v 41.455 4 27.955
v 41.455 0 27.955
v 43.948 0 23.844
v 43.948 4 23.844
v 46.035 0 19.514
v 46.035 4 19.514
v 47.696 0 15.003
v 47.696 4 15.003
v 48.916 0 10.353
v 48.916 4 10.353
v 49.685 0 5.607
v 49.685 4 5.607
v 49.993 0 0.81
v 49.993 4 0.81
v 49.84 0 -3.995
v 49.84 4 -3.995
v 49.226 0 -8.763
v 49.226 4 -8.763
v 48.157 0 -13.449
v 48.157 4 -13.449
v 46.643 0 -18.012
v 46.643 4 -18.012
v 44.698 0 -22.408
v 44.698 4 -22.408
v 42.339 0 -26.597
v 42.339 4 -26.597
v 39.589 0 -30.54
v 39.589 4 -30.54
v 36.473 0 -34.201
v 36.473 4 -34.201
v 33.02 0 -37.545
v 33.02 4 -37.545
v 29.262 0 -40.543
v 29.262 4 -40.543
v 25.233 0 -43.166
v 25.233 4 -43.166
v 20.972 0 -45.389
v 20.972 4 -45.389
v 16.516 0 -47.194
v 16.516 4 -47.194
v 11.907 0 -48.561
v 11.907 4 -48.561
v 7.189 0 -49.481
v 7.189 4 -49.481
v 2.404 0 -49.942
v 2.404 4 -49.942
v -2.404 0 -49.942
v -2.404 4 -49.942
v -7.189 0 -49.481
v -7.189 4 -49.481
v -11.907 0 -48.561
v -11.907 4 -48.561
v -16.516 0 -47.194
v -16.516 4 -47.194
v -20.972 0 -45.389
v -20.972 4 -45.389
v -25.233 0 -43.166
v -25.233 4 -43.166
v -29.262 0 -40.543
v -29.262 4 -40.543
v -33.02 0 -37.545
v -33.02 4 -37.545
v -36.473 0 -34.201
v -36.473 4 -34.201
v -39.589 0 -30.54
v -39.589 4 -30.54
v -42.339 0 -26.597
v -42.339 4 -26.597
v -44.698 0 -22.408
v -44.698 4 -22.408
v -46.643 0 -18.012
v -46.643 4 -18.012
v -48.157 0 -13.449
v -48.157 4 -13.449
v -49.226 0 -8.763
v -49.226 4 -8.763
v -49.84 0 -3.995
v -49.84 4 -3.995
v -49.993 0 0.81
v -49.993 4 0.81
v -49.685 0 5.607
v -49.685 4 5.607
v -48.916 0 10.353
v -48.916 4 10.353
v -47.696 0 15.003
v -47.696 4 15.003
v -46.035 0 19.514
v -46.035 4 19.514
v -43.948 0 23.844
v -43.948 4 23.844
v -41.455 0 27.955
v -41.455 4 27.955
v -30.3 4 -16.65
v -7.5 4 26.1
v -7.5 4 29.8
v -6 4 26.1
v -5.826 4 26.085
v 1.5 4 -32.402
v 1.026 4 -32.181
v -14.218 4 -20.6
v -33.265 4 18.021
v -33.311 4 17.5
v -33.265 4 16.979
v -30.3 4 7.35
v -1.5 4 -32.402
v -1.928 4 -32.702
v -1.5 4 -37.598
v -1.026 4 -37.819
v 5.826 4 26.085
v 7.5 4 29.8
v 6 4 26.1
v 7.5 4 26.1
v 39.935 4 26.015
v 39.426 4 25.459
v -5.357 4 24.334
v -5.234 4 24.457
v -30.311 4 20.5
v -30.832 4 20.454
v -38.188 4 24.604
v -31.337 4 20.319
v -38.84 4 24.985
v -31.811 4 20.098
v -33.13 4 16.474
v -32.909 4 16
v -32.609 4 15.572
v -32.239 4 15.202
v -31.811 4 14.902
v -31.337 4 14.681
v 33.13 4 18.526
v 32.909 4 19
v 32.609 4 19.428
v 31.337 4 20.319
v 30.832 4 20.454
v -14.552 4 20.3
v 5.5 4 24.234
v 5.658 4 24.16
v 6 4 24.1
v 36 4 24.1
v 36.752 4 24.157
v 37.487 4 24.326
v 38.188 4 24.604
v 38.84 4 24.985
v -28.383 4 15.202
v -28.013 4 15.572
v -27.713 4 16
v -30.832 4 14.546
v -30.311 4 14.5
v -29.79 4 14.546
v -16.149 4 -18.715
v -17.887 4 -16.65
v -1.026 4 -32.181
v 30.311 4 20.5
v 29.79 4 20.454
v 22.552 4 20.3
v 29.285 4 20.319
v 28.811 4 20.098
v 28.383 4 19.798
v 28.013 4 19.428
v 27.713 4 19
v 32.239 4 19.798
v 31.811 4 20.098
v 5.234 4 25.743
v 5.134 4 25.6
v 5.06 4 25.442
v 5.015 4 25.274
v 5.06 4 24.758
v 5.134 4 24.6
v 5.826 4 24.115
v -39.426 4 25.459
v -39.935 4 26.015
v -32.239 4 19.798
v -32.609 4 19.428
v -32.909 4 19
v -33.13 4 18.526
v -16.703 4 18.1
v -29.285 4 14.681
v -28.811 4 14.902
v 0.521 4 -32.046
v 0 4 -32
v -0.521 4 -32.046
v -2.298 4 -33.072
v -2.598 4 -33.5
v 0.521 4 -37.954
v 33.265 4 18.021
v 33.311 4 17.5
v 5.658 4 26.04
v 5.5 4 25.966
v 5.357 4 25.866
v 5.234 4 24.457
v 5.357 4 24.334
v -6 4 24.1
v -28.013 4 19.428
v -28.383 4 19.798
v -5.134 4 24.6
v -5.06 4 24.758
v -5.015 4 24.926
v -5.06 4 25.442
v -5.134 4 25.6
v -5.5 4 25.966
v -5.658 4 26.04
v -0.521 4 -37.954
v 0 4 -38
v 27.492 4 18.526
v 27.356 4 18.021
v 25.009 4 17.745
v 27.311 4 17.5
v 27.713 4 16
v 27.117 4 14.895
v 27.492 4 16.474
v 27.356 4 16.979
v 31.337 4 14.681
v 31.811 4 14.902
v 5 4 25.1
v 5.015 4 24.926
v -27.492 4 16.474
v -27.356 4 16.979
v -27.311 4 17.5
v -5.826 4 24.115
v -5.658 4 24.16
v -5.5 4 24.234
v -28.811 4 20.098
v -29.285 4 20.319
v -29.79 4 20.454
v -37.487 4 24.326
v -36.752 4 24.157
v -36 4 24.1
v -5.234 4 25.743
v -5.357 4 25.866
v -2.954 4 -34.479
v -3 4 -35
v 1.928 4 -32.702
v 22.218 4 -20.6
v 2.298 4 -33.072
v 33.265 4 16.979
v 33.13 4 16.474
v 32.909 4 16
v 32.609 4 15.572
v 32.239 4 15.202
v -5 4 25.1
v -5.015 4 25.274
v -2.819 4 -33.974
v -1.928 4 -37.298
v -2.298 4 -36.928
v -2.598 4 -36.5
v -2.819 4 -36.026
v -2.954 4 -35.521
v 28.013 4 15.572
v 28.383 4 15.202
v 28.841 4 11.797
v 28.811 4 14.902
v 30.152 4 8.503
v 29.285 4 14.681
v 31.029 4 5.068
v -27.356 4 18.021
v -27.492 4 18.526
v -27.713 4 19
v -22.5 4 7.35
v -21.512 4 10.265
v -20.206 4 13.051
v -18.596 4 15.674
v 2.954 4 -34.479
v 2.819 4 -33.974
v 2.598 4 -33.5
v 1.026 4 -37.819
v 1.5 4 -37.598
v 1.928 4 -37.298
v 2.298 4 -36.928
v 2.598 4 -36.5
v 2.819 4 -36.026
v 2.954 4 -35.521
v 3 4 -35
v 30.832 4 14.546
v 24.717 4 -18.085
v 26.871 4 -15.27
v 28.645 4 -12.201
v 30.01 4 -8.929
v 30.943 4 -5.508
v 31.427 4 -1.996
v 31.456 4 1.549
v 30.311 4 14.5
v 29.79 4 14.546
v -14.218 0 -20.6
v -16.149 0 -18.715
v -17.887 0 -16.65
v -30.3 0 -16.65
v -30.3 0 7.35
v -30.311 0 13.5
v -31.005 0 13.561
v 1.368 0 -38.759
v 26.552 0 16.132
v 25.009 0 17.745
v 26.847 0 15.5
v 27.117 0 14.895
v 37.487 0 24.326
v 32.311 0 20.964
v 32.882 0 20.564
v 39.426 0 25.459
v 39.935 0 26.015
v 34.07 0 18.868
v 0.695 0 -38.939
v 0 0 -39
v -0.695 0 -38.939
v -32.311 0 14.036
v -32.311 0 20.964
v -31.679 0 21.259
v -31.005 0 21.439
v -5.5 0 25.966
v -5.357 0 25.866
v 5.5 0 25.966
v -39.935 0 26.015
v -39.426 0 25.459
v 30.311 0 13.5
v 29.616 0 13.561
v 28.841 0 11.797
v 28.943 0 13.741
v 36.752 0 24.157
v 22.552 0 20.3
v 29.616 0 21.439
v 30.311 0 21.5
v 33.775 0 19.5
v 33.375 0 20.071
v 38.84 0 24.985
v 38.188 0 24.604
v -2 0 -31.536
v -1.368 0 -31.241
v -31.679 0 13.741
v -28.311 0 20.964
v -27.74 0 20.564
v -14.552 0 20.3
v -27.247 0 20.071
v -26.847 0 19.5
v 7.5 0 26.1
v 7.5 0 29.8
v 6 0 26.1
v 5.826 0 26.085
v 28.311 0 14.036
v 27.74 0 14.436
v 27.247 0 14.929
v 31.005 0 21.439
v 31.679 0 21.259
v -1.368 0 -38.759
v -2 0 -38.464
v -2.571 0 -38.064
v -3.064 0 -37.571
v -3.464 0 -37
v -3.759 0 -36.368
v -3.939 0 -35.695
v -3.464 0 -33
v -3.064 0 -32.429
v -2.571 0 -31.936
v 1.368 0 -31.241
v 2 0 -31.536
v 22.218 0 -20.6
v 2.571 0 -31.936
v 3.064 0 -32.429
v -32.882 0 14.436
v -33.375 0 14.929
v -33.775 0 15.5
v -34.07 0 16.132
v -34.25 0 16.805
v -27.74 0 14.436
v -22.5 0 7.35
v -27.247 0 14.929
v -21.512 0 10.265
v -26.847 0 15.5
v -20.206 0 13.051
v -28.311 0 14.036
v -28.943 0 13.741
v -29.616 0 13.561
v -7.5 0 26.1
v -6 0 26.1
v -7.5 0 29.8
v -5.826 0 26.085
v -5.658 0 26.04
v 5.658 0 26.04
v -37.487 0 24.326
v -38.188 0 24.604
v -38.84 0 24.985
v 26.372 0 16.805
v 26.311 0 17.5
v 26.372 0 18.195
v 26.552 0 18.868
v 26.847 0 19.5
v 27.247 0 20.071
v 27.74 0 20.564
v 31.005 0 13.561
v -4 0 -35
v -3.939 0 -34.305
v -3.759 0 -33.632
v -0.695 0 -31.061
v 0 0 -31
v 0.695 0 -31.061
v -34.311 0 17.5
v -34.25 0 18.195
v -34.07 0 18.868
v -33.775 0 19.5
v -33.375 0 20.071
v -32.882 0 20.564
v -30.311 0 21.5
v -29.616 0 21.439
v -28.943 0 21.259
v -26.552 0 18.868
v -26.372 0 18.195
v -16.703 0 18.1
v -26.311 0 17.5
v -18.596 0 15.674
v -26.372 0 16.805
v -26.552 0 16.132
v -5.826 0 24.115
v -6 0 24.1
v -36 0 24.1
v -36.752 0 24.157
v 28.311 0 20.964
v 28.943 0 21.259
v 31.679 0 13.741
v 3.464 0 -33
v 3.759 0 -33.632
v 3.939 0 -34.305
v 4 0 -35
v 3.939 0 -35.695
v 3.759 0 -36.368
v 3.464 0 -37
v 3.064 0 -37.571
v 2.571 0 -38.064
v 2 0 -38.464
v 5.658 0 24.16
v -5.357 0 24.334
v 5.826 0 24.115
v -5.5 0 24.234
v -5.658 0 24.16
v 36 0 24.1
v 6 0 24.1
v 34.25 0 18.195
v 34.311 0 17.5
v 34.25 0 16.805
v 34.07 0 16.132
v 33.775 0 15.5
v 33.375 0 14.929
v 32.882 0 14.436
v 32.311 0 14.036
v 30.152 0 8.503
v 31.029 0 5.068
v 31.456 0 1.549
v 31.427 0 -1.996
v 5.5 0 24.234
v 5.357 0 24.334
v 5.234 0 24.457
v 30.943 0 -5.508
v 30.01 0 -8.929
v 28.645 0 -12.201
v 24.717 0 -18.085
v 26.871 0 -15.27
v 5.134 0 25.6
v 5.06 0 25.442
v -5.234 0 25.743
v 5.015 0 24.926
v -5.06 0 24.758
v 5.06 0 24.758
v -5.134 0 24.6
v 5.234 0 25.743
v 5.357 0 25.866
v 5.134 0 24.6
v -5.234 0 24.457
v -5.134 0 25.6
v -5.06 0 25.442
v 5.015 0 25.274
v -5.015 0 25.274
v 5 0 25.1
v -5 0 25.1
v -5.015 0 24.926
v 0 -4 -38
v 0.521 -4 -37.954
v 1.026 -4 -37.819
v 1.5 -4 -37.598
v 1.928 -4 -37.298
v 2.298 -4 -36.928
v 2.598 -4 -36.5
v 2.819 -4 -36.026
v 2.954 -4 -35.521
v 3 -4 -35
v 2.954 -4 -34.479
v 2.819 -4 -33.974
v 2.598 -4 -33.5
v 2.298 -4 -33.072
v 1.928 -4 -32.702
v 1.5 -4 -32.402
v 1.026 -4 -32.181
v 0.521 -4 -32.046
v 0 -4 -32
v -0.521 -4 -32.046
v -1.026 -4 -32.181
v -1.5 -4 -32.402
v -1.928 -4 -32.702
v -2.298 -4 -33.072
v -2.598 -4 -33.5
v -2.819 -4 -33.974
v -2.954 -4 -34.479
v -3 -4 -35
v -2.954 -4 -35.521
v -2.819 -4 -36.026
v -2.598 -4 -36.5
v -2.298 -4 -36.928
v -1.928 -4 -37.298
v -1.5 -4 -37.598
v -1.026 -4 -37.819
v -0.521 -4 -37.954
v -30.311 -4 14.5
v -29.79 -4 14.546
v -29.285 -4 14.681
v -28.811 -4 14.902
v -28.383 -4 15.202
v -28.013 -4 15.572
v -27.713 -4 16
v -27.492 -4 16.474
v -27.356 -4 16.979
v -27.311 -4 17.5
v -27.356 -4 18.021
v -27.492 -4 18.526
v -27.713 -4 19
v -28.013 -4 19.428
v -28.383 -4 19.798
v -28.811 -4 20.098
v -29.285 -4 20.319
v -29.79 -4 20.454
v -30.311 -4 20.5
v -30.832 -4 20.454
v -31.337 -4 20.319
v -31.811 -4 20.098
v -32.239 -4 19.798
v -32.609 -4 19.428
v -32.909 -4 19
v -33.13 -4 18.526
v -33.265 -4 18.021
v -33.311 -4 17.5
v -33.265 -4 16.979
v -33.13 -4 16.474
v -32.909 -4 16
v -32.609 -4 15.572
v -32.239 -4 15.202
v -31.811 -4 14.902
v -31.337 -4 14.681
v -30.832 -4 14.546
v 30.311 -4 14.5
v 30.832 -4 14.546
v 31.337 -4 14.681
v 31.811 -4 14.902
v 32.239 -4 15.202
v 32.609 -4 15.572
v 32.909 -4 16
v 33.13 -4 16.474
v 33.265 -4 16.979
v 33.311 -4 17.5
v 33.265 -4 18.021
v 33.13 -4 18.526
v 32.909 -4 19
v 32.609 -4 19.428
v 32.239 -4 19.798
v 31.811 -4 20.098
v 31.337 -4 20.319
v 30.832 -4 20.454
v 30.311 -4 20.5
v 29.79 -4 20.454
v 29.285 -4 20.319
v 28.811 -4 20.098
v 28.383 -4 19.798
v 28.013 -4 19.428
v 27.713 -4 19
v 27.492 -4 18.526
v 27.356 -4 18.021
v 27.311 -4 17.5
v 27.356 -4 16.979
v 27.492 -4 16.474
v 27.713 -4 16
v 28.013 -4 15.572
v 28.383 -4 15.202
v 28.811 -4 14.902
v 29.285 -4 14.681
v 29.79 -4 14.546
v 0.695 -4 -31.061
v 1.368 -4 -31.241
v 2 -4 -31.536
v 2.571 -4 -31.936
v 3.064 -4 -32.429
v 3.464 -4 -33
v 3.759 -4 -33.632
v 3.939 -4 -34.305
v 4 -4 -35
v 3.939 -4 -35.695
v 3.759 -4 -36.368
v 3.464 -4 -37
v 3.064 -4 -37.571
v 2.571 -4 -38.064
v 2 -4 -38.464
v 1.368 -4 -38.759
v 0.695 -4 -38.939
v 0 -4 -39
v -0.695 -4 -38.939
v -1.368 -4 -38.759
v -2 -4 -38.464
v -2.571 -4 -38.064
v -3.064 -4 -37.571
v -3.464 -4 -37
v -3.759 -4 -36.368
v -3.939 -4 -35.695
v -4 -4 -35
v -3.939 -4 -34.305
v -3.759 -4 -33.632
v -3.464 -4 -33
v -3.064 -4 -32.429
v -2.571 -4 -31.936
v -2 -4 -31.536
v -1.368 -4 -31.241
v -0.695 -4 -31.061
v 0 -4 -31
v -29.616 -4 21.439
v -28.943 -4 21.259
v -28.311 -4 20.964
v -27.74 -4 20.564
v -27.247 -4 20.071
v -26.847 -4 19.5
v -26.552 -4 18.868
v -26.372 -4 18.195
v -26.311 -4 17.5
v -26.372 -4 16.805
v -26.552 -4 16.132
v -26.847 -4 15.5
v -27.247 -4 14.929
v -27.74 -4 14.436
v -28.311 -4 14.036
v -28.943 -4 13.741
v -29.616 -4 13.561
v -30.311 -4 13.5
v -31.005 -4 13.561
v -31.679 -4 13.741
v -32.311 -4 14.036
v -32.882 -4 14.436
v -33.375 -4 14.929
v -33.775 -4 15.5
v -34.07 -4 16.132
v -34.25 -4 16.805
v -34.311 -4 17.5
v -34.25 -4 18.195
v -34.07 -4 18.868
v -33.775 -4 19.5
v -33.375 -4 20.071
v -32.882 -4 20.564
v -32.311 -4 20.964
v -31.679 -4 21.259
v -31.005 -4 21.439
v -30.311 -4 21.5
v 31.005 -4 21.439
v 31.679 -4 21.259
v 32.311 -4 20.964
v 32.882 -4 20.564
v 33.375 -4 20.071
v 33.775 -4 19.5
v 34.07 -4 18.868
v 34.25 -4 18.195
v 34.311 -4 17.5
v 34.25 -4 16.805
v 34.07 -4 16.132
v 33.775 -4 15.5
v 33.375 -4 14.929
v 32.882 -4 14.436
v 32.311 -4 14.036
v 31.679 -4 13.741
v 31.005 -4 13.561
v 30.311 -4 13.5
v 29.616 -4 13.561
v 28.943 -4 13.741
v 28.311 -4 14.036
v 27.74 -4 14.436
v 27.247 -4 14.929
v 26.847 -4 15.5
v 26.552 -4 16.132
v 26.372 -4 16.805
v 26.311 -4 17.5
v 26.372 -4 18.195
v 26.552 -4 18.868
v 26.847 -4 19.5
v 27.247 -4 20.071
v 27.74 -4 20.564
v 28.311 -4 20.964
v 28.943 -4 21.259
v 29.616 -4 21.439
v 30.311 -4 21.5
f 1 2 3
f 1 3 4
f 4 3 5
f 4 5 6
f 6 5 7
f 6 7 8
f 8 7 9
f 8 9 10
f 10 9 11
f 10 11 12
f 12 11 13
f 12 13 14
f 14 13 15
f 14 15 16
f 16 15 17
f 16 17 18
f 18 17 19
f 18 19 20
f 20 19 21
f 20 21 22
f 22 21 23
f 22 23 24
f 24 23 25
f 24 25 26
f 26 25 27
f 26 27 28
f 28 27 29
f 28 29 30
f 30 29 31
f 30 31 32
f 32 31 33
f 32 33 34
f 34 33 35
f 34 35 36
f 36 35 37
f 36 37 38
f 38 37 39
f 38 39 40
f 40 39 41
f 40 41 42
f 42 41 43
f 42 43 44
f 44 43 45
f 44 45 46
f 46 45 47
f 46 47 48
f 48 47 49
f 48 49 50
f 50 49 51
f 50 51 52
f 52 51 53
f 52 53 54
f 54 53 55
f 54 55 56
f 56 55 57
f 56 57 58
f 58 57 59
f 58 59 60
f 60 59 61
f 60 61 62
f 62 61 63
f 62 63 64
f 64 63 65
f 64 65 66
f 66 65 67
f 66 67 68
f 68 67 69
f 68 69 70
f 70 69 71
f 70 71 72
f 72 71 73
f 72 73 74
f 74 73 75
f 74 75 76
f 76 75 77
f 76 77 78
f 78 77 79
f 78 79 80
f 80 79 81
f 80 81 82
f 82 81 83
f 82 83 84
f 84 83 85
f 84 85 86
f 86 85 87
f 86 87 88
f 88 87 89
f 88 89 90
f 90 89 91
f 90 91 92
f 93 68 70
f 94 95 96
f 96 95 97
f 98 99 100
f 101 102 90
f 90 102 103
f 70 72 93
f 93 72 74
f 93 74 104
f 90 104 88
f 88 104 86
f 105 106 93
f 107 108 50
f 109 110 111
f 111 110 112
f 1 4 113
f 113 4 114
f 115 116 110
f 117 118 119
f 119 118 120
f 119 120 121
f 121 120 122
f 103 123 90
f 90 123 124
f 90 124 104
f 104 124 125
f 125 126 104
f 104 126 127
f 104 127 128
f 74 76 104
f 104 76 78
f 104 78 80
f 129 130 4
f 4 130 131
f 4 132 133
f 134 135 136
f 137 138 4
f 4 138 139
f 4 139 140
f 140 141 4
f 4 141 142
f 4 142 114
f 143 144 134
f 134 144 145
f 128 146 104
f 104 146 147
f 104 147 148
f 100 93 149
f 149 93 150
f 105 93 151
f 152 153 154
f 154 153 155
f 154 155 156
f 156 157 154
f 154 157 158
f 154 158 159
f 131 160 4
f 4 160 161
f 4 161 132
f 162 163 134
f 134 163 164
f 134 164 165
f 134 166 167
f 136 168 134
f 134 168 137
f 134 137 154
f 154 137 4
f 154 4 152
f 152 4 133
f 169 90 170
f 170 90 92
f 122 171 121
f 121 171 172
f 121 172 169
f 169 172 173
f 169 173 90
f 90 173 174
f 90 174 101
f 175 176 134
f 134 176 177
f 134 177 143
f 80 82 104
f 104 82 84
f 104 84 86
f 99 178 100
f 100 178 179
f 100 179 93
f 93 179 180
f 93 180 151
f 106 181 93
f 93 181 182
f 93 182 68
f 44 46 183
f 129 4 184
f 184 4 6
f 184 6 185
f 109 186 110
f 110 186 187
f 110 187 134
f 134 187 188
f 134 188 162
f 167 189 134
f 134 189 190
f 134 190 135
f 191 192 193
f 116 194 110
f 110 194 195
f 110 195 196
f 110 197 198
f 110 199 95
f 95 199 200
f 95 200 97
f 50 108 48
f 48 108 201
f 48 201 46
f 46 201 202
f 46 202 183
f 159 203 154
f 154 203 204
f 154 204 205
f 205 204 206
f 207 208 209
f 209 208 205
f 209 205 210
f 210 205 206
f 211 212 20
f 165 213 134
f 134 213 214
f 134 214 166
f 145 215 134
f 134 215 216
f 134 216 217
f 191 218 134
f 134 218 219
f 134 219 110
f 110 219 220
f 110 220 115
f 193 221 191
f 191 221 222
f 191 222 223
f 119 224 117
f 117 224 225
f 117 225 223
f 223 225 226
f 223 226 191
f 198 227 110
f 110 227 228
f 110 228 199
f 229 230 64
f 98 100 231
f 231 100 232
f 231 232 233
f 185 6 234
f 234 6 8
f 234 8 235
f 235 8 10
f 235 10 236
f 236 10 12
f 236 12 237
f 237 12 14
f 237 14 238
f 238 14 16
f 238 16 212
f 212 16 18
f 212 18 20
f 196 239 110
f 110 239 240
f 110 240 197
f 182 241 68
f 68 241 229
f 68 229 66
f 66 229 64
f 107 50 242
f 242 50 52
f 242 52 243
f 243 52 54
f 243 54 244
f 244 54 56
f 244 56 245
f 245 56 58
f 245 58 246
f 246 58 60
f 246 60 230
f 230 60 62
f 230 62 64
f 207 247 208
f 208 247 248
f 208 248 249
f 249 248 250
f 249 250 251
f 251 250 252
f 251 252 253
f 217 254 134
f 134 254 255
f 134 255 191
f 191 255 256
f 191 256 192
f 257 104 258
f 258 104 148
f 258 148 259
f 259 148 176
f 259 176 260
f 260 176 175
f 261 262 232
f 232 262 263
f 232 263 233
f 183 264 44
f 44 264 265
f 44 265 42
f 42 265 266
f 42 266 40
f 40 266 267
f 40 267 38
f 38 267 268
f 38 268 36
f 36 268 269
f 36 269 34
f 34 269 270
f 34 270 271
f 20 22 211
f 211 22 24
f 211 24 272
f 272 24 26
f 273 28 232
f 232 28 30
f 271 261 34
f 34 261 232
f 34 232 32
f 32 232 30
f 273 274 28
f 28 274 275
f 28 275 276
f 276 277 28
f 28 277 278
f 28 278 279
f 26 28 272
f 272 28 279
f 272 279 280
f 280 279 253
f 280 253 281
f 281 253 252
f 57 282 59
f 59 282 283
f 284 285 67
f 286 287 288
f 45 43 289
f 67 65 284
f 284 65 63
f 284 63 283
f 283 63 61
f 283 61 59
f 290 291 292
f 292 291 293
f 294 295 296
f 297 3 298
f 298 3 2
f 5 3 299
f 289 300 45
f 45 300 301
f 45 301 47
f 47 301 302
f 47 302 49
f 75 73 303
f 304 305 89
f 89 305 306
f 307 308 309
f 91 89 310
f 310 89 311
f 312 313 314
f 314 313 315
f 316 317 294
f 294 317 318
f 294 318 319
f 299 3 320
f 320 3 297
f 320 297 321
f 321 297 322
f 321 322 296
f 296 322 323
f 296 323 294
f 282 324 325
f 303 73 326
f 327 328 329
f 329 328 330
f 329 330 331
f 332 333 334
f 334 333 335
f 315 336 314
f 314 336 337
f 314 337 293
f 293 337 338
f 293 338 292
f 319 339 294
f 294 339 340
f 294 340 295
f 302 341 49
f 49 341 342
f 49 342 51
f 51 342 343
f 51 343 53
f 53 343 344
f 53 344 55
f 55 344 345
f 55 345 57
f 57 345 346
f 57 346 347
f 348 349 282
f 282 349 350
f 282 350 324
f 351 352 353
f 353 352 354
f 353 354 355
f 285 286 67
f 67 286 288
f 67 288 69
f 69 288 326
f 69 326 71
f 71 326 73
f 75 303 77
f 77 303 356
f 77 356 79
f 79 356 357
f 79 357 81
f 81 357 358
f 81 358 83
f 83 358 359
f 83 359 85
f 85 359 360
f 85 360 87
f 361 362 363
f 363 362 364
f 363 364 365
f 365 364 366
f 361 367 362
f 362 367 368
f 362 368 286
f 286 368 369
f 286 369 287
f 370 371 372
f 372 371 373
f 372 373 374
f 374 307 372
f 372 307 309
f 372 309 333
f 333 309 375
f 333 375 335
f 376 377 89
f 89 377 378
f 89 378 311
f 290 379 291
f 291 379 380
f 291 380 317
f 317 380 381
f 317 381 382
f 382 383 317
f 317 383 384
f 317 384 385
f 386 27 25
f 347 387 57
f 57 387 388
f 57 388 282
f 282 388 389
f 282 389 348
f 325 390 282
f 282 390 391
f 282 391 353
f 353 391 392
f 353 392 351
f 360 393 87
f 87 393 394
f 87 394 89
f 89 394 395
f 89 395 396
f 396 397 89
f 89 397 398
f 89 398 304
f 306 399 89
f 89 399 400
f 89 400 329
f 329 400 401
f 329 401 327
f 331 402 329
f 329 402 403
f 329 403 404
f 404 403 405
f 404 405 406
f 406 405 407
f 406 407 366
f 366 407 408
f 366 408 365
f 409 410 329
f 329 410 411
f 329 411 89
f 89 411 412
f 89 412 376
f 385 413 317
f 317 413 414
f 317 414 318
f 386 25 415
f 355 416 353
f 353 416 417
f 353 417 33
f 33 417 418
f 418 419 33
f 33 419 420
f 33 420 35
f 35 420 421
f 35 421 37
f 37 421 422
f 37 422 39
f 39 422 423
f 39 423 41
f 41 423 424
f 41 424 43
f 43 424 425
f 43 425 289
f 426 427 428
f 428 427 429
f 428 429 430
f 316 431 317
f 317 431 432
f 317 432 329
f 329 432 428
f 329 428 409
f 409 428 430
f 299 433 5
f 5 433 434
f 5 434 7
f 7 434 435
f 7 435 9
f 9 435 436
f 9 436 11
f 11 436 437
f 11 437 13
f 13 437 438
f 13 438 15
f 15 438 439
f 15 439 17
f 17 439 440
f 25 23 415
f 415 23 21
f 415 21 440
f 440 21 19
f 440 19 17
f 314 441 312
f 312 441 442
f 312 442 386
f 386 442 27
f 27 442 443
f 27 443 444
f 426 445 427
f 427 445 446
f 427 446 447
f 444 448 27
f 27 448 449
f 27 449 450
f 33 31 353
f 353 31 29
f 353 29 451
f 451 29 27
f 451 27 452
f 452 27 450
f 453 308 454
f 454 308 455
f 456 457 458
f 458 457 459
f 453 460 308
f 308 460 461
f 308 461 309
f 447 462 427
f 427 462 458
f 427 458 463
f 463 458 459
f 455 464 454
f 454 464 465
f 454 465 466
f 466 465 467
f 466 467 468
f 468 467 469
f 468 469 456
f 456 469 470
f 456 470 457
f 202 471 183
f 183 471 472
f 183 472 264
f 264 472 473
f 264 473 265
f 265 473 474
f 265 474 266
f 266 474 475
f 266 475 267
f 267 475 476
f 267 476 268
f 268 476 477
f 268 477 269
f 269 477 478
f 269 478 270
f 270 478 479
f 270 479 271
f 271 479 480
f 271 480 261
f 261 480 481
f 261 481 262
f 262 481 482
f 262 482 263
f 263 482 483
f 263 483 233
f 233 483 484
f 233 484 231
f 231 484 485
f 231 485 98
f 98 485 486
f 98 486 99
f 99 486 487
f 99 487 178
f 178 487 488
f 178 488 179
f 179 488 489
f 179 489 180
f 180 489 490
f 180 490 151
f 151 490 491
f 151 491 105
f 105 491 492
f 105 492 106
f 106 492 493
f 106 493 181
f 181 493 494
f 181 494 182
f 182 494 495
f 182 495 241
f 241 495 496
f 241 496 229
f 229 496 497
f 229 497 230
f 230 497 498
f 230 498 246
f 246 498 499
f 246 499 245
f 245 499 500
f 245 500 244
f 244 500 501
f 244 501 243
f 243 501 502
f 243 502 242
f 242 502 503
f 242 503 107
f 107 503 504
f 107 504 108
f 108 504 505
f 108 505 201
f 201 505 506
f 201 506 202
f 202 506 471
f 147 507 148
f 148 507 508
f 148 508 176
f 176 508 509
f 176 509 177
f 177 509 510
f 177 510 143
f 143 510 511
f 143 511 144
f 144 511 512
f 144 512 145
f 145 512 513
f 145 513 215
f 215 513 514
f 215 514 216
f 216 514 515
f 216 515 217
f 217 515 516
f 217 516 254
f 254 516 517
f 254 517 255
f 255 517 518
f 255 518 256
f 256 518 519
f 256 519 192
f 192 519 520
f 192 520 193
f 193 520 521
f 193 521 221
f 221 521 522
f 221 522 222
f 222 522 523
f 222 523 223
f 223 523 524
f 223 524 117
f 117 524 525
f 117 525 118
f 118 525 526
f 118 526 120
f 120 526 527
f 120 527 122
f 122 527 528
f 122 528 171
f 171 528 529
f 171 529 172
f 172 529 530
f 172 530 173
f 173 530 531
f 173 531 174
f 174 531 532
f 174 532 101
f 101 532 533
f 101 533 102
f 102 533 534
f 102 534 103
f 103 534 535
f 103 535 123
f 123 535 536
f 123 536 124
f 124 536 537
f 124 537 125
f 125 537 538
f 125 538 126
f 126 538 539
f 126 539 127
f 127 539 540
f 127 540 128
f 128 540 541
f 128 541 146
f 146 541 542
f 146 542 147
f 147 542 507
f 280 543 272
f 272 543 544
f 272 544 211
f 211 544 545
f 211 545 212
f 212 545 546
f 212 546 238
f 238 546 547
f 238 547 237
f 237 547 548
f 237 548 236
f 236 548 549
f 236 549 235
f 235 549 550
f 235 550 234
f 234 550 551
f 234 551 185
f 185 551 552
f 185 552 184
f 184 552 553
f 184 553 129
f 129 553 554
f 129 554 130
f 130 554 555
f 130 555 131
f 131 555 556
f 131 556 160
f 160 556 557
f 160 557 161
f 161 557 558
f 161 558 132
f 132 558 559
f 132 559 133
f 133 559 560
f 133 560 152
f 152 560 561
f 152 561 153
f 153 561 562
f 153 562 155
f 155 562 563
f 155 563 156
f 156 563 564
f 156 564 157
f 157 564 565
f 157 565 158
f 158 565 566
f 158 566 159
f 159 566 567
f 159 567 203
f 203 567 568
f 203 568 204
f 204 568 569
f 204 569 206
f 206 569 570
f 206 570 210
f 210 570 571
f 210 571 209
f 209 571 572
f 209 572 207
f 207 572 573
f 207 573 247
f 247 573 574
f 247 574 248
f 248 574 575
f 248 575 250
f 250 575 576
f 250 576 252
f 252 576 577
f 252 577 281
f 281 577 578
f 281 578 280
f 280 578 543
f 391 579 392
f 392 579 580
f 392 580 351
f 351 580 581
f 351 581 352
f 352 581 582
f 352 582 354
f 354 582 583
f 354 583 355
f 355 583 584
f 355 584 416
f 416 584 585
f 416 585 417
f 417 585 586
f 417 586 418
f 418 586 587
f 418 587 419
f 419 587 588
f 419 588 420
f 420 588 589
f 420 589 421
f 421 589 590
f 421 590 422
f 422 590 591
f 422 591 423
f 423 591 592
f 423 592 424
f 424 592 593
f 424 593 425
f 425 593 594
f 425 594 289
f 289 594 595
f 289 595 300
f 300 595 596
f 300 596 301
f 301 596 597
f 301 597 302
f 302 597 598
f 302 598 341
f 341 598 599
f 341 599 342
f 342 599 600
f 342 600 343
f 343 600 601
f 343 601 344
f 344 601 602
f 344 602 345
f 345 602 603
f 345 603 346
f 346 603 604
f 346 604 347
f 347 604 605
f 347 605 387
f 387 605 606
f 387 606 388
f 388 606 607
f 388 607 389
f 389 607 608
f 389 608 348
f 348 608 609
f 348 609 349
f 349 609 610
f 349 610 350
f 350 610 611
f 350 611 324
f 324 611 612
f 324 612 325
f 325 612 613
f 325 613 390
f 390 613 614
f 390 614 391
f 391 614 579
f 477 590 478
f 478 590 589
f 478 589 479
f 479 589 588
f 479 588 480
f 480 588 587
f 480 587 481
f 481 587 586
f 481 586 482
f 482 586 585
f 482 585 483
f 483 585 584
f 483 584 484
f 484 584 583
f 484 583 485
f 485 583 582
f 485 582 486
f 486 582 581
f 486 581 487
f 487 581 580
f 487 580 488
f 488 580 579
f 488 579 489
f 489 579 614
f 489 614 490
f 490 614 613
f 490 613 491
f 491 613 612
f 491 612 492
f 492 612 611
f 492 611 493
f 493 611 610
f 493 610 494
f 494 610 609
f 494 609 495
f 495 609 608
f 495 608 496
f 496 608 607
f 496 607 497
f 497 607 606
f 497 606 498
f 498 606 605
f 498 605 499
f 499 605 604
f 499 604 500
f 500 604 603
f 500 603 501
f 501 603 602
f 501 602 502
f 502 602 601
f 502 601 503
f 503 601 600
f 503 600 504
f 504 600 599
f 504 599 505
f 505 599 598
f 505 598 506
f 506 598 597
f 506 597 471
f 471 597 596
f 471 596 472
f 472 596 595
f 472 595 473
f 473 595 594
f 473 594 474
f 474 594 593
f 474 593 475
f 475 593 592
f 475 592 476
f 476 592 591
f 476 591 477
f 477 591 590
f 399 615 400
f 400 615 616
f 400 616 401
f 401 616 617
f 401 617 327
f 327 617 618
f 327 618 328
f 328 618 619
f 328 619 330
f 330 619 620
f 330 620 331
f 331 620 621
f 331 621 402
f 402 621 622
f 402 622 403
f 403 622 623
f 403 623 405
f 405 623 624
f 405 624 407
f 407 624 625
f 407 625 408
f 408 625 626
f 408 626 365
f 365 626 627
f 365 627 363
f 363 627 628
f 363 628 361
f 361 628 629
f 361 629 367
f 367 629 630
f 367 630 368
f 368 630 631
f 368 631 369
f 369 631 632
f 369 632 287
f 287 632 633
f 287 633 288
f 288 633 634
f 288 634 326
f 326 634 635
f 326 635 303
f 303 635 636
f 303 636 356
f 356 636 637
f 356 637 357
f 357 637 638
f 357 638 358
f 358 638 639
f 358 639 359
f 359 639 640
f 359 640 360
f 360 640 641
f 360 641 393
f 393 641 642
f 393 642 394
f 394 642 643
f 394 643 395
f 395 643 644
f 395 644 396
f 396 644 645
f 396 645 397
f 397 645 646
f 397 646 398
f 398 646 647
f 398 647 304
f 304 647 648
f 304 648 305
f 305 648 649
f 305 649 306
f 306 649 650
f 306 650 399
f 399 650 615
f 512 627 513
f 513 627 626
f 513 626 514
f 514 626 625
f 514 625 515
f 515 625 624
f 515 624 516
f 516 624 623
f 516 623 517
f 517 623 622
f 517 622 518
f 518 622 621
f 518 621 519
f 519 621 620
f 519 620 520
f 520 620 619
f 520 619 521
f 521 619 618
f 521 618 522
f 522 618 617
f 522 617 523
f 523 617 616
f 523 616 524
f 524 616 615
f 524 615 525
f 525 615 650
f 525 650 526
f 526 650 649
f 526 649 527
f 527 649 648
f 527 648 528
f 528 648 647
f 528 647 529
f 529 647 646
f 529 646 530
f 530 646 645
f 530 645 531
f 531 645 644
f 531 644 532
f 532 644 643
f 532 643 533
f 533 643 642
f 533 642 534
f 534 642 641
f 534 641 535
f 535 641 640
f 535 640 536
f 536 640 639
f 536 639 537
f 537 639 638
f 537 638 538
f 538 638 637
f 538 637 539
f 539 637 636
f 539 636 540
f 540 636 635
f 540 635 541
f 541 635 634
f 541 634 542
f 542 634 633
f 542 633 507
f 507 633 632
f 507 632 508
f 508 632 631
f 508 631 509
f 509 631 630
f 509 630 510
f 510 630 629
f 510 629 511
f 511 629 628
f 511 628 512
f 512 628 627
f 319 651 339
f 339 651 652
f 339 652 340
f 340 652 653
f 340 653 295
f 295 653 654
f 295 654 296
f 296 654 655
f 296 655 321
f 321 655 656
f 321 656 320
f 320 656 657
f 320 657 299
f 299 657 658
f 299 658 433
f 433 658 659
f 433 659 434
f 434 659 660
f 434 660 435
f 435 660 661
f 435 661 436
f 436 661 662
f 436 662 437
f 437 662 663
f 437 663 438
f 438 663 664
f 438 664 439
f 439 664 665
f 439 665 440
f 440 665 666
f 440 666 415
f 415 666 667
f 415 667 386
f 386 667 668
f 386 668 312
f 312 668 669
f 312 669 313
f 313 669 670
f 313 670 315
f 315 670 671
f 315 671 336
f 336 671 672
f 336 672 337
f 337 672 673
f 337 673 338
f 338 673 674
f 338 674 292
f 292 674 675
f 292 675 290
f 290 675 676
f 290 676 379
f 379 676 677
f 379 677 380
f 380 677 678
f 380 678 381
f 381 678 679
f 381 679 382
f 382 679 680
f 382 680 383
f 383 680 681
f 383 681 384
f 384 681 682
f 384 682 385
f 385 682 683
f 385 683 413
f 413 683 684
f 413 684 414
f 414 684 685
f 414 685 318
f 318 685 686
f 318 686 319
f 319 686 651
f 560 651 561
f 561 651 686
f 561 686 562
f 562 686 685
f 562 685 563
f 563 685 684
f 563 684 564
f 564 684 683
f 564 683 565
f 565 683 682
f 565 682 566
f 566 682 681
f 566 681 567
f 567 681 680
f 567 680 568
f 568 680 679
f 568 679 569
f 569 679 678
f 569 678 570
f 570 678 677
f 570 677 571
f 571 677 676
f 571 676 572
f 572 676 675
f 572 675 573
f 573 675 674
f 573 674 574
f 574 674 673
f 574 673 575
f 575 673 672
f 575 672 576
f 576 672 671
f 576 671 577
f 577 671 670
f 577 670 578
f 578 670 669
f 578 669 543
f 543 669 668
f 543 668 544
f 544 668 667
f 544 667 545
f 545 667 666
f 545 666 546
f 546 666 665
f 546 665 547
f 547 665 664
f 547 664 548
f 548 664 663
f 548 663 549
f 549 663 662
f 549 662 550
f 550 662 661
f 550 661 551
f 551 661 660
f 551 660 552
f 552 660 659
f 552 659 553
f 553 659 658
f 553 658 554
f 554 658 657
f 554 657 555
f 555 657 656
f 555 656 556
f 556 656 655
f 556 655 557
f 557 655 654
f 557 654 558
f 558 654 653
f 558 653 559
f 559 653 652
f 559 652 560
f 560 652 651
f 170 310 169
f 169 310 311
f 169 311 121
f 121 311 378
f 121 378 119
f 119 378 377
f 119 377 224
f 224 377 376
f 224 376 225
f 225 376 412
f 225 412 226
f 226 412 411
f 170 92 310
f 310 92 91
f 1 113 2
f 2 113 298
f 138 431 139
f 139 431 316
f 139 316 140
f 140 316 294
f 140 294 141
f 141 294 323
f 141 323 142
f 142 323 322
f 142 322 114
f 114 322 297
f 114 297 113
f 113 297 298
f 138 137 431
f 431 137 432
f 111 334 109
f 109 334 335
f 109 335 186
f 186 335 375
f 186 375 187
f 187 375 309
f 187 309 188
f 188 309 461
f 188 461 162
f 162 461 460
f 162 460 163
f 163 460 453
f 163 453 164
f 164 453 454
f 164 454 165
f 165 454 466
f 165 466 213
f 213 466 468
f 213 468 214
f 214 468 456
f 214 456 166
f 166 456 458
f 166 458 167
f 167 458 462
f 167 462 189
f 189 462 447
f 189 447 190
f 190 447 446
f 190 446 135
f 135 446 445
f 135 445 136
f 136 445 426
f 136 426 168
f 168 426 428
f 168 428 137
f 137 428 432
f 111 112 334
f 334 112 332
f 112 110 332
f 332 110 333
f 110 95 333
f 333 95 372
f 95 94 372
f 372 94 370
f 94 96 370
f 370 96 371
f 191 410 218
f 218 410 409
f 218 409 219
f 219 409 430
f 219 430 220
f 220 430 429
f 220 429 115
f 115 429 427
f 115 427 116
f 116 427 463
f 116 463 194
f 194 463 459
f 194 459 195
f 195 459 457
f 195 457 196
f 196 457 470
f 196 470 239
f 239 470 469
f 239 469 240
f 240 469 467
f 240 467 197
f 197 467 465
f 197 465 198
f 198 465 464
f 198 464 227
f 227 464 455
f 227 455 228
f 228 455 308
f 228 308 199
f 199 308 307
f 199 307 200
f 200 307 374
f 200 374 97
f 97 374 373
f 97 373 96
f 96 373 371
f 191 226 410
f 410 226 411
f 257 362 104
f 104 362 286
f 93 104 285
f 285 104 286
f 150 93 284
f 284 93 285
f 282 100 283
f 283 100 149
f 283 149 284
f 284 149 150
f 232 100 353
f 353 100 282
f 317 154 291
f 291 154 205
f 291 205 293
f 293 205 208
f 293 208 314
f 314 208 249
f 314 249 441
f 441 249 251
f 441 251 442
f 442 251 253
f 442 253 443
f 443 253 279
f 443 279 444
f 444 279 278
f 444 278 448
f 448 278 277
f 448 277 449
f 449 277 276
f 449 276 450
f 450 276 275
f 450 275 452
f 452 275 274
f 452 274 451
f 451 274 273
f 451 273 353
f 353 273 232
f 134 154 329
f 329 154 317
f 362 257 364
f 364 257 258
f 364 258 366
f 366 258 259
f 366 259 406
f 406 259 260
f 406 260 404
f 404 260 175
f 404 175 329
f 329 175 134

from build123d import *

# Parameters (mm, degrees)
SKETCH1_R           = 50
BOSS_EXTRUDE1_DEPTH = 4
CUT_EXTRUDE1_START  = -1
SKETCH2_R           = 3
CUT_EXTRUDE1_DEPTH  = 6
CIRPATTERN1_COUNT   = 3
SKETCH3_R           = 4
BOSS_EXTRUDE3_DEPTH = 4
SKETCH4_R           = 3
CUT_EXTRUDE2_DEPTH  = 5
CIRPATTERN2_COUNT   = 3
CUT_EXTRUDE4_DEPTH  = 5
CUT_EXTRUDE5_DEPTH  = 9


with BuildPart() as part:
    # Sketch1 → Boss-Extrude1 (new body)
    with BuildSketch(Plane(origin=(0, 0, 0), x_dir=(1, 0, 0), z_dir=(0, 1, 0))):
        Circle(SKETCH1_R)
    extrude(amount=BOSS_EXTRUDE1_DEPTH)

    # Sketch2 → Cut-Extrude1 (cut)
    with BuildSketch(Plane(origin=(0, 0, 0), x_dir=(1, 0, 0), z_dir=(0, 1, 0)).offset(CUT_EXTRUDE1_START)):
        with Locations((0, 35)):
            Circle(SKETCH2_R)
    cut_extrude1 = extrude(amount=CUT_EXTRUDE1_DEPTH, mode=Mode.SUBTRACT)

    # CirPattern1: Cut-Extrude1 ×3 about axis
    cirpattern1_axis = Axis((0, 0, 0), (0, 1, 0))
    for i in range(1, CIRPATTERN1_COUNT):
        add(cut_extrude1.rotate(cirpattern1_axis, i * 360 / CIRPATTERN1_COUNT), mode=Mode.SUBTRACT)

    # Sketch3 → Boss-Extrude3 (add)
    with BuildSketch(Plane.XZ):
        with Locations((0, -35)):
            Circle(SKETCH3_R)
    boss_extrude3 = extrude(amount=BOSS_EXTRUDE3_DEPTH)

    # Sketch4 → Cut-Extrude2 (cut, through all)
    with BuildSketch(Plane.XZ):
        with Locations((0, -35)):
            Circle(SKETCH4_R)
    cut_extrude2 = extrude(amount=CUT_EXTRUDE2_DEPTH, mode=Mode.SUBTRACT)

    # CirPattern2: Boss-Extrude3, Cut-Extrude2 ×3 about axis
    cirpattern2_axis = Axis((0, 0, 0), (0, 1, 0))
    for i in range(1, CIRPATTERN2_COUNT):
        add(boss_extrude3.rotate(cirpattern2_axis, i * 360 / CIRPATTERN2_COUNT))
        add(cut_extrude2.rotate(cirpattern2_axis, i * 360 / CIRPATTERN2_COUNT), mode=Mode.SUBTRACT)

    # Sketch5 → Cut-Extrude4 (cut, through all)
    with BuildSketch(Plane(origin=(0, 0, 0), x_dir=(1, 0, 0), z_dir=(0, 1, 0))):
        with BuildLine():
            Line((-36, -24.1), (-6, -24.1))
            ThreePointArc((-6, -24.1), (-5, -25.1), (-6, -26.1))
            Line((-6, -26.1), (-7.5, -26.1))
            Line((-7.5, -26.1), (-7.5, -29.8))
            Line((-7.5, -29.8), (7.5, -29.8))
            Line((7.5, -29.8), (7.5, -26.1))
            Line((7.5, -26.1), (6, -26.1))
            ThreePointArc((6, -26.1), (5, -25.1), (6, -24.1))
            Line((6, -24.1), (36, -24.1))
            ThreePointArc((36, -24.1), (38.18825044, -24.604273138), (39.935110512, -26.015375995))
            Line((39.935110512, -26.015375995), (41.455250321, -27.954645783))
            ThreePointArc((41.455250321, -27.954645783), (0, -50), (-41.455250321, -27.954645783))
            Line((-41.455250321, -27.954645783), (-39.935110512, -26.015375995))
            ThreePointArc((-39.935110512, -26.015375995), (-38.18825044, -24.604273138), (-36, -24.1))
        make_face()
    extrude(amount=CUT_EXTRUDE4_DEPTH, mode=Mode.SUBTRACT)

    # Sketch6 → Cut-Extrude5 (cut, through all)
    with BuildSketch(Plane(origin=(0, 4, 0), x_dir=(1, 0, 0), z_dir=(0, 1, 0))):
        with BuildLine():
            Line((-30.3, -7.35), (-30.3, 16.65))
            Line((-30.3, 16.65), (-17.886696873, 16.65))
            ThreePointArc((-17.886696873, 16.65), (-16.149299311, 18.715120553), (-14.217848391, 20.6))
            Line((-14.217848391, 20.6), (22.217848391, 20.6))
            ThreePointArc((22.217848391, 20.6), (31.499084727, 0.224363896), (22.5515498, -20.3))
            Line((22.5515498, -20.3), (-14.5515498, -20.3))
            ThreePointArc((-14.5515498, -20.3), (-19.437717402, -14.384832394), (-22.499575468, -7.35))
            Line((-22.499575468, -7.35), (-30.3, -7.35))
        make_face()
    extrude(amount=-CUT_EXTRUDE5_DEPTH, mode=Mode.SUBTRACT)


solid = part.part
